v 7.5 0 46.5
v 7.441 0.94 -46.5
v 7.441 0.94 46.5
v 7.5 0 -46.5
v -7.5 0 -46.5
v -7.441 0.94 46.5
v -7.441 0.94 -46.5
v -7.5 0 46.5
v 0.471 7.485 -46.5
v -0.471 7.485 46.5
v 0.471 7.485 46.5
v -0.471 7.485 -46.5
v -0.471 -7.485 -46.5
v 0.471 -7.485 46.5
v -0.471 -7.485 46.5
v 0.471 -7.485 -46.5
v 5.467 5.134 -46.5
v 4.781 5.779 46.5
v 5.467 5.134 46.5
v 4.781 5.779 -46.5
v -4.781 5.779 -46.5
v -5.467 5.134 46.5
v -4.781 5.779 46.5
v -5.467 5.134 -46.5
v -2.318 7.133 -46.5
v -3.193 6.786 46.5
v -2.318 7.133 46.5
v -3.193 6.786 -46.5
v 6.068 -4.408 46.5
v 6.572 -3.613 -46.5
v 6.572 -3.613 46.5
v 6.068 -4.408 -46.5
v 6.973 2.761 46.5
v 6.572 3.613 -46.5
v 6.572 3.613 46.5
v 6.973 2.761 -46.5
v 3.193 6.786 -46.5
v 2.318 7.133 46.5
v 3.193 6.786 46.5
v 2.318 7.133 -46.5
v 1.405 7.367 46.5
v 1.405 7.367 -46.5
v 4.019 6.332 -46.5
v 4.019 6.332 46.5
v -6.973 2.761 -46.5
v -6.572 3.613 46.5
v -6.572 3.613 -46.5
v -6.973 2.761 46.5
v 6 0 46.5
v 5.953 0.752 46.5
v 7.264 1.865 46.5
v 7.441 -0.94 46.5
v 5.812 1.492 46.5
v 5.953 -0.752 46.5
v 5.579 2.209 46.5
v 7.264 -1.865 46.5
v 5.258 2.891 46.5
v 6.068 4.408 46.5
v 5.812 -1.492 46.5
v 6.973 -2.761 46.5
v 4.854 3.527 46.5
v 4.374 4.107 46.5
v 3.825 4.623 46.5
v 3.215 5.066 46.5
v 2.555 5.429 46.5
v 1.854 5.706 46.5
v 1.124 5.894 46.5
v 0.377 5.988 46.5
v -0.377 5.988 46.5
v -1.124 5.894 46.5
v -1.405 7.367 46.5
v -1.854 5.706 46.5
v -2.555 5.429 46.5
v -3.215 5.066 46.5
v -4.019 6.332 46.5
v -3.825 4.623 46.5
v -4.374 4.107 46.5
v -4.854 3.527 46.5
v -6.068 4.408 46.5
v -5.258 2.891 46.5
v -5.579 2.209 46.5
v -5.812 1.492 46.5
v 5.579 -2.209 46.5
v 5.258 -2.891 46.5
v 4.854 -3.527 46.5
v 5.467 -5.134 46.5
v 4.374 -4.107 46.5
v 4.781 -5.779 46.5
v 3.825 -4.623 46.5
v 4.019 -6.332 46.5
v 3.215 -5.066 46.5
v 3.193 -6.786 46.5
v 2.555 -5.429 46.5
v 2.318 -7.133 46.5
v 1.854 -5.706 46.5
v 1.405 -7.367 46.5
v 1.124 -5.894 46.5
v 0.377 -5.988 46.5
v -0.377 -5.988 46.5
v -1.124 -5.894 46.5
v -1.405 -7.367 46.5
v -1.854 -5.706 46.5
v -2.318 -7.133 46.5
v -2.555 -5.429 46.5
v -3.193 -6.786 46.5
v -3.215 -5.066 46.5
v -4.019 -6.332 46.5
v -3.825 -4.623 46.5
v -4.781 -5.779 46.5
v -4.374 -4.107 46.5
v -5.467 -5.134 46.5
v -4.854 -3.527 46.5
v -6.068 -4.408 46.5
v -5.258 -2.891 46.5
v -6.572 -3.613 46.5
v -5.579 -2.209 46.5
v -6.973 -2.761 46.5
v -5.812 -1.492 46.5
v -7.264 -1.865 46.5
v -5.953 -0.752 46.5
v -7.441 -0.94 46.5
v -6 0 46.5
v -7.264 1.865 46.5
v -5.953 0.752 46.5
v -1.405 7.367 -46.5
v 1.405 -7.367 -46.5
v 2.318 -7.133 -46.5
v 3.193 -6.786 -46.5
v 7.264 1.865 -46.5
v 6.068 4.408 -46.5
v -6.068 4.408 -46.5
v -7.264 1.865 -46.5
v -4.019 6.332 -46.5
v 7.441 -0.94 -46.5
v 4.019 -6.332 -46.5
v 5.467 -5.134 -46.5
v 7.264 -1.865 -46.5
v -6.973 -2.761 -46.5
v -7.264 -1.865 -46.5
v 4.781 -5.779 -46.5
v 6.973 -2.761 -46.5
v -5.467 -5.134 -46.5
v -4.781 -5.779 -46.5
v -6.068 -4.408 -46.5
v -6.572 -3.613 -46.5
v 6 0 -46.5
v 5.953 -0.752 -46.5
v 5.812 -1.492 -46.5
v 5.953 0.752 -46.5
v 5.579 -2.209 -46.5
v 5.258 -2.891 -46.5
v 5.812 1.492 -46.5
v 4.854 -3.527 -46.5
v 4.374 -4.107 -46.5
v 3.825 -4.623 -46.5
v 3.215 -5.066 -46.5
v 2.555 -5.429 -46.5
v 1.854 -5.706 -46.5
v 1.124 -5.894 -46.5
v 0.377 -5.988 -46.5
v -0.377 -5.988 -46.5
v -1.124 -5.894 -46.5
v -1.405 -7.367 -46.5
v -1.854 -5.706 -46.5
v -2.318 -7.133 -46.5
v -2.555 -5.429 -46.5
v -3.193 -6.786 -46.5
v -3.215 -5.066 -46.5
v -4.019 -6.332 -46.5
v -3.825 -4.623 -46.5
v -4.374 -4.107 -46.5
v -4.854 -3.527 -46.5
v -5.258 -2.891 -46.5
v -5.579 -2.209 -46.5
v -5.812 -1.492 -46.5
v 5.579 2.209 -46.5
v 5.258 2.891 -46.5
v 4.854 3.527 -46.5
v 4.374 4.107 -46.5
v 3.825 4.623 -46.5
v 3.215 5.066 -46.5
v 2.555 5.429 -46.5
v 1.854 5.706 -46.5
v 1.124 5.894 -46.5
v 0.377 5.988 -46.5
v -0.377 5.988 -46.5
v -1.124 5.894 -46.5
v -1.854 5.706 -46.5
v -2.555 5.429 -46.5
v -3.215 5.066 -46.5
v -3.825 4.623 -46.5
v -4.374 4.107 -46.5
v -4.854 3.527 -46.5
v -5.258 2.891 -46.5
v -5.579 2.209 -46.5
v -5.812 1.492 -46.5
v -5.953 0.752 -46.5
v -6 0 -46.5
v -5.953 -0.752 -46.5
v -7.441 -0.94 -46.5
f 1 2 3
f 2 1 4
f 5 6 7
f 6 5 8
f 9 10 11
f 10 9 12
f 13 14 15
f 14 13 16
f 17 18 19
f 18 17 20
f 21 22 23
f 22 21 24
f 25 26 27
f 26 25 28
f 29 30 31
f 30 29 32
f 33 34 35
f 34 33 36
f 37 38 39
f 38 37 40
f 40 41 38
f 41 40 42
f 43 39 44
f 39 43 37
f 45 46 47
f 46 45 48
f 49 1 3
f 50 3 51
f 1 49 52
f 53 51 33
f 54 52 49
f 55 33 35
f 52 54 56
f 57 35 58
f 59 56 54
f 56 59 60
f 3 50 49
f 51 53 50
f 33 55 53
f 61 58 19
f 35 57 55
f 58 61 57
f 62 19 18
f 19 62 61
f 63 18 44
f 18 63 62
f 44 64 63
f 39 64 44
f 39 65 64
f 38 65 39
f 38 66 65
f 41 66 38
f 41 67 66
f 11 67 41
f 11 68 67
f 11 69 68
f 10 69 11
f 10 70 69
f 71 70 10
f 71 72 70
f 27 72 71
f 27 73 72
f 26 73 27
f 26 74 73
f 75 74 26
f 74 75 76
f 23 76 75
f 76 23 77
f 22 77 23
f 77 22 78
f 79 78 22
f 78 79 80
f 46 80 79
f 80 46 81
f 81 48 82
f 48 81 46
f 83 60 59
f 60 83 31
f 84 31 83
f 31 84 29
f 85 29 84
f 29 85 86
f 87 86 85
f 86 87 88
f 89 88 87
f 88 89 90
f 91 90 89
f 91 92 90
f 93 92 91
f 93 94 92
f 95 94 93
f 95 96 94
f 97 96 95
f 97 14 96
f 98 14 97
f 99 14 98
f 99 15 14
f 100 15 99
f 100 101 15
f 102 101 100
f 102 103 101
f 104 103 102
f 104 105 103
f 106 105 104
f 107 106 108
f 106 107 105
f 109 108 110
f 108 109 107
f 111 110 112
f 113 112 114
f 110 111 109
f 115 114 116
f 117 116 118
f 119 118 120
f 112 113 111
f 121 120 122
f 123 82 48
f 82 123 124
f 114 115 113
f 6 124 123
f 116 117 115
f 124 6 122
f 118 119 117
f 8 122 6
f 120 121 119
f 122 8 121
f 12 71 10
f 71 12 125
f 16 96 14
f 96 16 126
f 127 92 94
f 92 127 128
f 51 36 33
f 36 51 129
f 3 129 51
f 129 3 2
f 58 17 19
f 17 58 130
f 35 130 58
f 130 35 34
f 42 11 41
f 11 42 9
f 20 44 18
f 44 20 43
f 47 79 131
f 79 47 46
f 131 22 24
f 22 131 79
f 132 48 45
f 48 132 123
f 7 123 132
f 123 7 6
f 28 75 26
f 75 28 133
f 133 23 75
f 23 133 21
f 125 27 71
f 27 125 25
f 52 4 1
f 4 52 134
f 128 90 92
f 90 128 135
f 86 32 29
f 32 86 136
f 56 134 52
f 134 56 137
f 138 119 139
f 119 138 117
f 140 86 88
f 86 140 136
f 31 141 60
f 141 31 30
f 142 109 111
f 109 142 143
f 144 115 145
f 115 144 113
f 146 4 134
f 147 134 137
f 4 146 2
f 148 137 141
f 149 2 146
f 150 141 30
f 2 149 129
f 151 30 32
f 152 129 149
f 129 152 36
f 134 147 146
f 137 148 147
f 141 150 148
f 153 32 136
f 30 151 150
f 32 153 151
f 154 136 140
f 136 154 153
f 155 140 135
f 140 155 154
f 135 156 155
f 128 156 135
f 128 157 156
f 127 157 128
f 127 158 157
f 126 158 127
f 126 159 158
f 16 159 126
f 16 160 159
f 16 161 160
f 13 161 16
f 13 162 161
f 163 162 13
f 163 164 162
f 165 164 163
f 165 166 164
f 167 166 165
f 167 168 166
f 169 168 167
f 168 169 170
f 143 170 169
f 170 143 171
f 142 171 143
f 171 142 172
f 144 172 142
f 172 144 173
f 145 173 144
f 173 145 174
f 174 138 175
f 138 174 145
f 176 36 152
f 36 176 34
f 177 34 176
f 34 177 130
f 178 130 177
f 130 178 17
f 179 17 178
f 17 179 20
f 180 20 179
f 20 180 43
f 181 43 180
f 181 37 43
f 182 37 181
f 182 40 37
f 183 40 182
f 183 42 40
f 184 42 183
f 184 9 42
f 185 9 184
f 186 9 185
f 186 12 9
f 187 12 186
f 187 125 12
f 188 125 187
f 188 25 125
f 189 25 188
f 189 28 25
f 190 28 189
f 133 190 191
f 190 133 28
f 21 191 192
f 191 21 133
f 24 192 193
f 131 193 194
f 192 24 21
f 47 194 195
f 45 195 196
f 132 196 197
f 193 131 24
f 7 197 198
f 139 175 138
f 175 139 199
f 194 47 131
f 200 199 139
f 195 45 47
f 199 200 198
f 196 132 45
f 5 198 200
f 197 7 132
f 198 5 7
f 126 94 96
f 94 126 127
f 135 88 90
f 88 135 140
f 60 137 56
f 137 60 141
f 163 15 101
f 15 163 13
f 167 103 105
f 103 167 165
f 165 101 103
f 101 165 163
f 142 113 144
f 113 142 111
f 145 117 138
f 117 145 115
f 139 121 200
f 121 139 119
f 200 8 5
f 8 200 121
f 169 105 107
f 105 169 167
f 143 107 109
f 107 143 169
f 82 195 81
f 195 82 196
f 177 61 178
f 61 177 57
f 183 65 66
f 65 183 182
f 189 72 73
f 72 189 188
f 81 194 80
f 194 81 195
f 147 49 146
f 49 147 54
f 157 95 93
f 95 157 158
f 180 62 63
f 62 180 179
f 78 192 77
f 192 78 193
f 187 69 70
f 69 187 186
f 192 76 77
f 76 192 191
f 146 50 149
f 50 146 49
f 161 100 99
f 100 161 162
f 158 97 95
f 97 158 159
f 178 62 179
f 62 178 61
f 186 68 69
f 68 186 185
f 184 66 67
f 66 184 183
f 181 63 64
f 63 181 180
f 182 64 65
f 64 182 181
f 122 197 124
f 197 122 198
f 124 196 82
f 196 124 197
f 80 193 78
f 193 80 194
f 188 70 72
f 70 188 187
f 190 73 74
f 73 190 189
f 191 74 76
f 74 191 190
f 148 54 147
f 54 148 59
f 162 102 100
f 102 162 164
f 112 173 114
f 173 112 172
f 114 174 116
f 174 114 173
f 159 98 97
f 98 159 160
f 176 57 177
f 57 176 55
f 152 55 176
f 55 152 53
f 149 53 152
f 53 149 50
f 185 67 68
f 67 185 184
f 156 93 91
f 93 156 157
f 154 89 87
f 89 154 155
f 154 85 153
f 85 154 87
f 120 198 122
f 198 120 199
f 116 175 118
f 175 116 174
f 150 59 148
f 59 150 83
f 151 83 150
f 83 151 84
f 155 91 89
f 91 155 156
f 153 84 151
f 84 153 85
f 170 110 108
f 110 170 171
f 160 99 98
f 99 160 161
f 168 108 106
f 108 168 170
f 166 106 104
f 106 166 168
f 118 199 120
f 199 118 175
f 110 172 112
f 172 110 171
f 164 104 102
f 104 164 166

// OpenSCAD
$fn = 50;


difference() {
	union() {
		translate(v = [0, 0, -46.5000000000]) {
			cylinder(h = 93, r = 7.5000000000);
		}
	}
	union() {
		translate(v = [0, 0, -100.0000000000]) {
			cylinder(h = 200, r = 6);
		}
	}
}
